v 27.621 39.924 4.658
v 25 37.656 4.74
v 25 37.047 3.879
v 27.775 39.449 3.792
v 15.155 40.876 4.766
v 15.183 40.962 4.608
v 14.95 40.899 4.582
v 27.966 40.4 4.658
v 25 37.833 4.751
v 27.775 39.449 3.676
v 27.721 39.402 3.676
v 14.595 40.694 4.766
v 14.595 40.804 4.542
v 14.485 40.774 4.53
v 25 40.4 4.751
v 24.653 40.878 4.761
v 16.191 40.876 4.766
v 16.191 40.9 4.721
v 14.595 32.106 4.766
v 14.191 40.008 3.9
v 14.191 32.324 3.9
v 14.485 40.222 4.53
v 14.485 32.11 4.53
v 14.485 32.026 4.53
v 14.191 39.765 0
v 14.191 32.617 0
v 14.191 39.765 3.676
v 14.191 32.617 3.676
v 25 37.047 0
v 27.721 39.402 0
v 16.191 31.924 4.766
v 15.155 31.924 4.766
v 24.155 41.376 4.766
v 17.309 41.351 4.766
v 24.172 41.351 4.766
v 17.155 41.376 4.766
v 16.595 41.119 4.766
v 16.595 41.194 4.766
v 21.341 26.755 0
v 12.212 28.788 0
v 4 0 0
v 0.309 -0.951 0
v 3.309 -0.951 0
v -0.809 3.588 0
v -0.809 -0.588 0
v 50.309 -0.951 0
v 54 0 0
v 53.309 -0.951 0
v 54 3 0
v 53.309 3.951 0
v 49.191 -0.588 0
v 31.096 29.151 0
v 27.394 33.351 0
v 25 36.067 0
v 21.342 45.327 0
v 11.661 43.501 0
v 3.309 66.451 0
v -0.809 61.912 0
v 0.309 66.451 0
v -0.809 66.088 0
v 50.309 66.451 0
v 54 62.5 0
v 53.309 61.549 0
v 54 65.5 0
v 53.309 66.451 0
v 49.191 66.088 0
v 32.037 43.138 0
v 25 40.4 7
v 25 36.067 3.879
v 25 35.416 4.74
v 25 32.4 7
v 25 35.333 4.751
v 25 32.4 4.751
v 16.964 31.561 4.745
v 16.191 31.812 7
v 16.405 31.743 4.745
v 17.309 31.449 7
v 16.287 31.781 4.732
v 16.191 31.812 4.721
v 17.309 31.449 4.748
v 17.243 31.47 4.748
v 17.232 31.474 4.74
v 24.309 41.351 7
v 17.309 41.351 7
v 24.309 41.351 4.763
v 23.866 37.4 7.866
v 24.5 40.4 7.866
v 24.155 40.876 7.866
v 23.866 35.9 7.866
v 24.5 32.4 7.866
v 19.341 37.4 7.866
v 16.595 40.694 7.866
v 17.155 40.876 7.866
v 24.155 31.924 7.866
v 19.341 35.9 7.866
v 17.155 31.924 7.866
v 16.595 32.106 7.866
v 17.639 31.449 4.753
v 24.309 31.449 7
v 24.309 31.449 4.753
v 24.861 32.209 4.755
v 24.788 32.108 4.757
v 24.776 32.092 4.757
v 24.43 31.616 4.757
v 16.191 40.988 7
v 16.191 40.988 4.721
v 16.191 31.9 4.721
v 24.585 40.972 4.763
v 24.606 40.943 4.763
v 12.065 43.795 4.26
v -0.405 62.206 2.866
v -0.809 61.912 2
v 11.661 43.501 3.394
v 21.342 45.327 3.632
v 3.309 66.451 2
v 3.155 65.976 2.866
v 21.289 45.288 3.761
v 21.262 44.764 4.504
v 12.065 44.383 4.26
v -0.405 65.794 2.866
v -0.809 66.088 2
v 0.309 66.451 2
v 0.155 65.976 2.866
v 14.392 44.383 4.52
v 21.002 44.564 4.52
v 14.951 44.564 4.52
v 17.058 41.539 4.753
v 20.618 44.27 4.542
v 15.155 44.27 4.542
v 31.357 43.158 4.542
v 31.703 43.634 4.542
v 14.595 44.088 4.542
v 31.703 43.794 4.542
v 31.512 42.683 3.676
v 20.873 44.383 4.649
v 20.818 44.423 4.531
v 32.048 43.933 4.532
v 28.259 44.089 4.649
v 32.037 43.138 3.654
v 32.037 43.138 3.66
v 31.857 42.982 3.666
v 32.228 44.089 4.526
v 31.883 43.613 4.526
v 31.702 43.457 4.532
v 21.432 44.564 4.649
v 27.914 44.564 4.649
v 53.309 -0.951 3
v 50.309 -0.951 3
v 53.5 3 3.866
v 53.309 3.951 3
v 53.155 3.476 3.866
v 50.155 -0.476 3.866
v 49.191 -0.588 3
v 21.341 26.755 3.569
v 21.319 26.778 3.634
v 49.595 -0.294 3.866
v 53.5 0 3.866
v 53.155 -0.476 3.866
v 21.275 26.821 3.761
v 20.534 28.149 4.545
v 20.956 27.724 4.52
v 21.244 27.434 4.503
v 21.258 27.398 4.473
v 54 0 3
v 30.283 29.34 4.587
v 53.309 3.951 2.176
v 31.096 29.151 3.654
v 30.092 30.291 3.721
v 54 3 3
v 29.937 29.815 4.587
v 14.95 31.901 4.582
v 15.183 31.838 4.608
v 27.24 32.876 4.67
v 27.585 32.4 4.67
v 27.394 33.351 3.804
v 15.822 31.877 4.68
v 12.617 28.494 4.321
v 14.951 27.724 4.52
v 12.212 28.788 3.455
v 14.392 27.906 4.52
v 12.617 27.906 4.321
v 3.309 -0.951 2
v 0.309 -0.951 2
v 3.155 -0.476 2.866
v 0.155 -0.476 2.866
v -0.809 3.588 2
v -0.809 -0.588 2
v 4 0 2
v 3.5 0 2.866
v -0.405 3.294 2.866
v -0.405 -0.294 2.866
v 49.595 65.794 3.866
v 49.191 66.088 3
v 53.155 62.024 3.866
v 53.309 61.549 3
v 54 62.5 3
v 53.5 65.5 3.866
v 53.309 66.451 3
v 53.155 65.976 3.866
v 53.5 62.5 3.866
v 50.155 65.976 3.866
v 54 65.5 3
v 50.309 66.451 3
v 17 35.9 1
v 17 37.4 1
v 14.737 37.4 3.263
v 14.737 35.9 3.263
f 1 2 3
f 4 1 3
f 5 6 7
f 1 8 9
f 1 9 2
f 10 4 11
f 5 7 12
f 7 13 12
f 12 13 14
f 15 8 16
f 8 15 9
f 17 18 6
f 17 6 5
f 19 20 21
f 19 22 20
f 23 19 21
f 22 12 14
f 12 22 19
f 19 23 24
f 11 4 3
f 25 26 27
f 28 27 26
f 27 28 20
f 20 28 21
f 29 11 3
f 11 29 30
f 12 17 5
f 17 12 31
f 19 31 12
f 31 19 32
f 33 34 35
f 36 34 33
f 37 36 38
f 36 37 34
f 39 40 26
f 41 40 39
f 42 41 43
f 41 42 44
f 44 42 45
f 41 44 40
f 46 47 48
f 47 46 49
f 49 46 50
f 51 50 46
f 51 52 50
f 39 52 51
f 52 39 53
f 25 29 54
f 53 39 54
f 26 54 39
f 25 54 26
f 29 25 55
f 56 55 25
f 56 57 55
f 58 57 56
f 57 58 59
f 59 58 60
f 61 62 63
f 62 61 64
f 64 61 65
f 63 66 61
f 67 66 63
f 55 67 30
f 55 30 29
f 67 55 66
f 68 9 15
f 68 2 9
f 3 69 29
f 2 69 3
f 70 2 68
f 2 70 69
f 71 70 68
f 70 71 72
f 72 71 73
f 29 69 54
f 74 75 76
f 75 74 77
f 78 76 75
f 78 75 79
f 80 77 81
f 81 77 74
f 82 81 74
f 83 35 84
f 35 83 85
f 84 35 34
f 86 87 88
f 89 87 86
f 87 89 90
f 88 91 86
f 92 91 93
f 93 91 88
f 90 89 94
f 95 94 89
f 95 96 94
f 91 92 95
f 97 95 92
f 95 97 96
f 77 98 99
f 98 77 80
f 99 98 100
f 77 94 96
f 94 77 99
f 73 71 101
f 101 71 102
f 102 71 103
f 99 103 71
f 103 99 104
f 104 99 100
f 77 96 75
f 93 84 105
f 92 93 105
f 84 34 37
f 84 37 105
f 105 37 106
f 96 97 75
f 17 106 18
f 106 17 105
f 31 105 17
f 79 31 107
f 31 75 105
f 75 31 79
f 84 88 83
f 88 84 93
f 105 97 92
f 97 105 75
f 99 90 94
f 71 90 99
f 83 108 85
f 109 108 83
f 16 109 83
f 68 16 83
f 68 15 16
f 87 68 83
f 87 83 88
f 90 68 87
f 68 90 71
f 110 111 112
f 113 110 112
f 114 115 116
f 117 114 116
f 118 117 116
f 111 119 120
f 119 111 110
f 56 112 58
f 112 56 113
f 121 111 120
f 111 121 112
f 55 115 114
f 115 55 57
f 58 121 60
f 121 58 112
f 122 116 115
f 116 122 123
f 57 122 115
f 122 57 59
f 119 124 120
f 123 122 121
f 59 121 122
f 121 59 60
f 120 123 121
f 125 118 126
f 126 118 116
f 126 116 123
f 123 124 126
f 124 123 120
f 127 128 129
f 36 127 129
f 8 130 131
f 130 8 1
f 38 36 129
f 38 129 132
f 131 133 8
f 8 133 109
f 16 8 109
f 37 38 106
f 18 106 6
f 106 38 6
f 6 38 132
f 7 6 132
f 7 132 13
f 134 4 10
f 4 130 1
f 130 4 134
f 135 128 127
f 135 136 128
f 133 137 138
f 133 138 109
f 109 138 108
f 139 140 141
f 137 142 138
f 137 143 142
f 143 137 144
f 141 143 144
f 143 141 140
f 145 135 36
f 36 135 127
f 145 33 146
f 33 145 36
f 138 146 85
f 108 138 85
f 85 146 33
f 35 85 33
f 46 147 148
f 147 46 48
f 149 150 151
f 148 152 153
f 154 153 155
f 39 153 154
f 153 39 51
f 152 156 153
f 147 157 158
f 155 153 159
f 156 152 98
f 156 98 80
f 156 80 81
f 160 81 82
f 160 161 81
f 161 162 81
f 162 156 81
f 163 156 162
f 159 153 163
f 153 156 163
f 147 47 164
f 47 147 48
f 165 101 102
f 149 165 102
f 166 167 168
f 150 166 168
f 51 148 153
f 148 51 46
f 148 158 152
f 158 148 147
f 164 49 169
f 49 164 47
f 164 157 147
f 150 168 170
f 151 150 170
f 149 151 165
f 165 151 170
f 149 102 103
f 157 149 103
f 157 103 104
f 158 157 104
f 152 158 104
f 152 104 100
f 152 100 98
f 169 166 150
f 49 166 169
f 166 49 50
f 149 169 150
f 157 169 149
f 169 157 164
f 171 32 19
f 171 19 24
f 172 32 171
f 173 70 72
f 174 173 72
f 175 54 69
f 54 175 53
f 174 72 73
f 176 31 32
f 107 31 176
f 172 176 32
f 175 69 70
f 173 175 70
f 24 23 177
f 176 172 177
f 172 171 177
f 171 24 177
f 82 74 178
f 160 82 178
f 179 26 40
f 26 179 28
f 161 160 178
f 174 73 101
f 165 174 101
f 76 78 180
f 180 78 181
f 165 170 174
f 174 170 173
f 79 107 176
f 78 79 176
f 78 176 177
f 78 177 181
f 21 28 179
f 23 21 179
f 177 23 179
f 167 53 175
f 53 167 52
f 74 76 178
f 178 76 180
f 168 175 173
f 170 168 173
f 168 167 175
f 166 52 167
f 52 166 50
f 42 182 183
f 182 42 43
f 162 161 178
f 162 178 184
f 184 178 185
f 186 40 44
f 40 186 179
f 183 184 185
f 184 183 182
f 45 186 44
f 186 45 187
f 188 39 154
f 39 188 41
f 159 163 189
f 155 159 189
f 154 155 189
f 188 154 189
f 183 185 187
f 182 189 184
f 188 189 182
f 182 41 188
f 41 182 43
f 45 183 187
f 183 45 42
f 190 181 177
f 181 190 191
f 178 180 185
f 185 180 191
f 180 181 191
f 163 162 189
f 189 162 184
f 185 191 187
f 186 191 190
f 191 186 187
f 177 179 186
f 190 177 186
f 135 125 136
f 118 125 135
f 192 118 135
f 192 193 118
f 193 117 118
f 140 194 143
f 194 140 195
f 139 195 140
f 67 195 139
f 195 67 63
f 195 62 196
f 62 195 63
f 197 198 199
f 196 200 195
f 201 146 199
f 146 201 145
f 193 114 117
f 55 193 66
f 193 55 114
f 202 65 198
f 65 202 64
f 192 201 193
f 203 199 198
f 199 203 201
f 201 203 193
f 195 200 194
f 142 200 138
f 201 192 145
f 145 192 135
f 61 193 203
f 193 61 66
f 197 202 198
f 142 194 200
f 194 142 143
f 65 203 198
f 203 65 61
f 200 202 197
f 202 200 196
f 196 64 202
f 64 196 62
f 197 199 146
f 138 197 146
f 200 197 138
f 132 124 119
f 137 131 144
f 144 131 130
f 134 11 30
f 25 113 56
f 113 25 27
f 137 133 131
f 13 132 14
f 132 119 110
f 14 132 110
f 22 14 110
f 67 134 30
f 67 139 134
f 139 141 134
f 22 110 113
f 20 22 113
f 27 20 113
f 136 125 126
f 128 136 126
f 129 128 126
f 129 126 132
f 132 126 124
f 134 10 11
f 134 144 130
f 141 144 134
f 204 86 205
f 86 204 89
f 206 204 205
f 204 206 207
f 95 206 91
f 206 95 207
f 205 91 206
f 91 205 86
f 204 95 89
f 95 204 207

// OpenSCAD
//Top Bottom, Front, Rear
//Left side

$fs=50;

cornercube=3;
U=62.5;
F=50;
supportH=3.9;
backH=2;

module hinge() {
    translate([17,37.4-1.5,1]) rotate([0,45,0]) 
    translate([-3.2,0,0]) {
    cube([3.2,1.5,20]);
    };    
};

module TF() {
    translate([F,U,0]) {
    cube([cornercube,cornercube,cornercube]);
    };
};

module TR() {
    translate([0,U,0]) {
    cube([cornercube,cornercube,backH]);
    };
};
    
module BF() {
    translate([F,0,0]) {
    cube([cornercube,cornercube,cornercube]);
    };
};
    
module BR() {
    translate([0,0,0]) {
    cube([cornercube,cornercube,backH]);
    };
};
    
module Tglasses(){
    translate([17,37.4,0]) {
    cube([7,3.5,supportH]);
    };
};
    
module Bglasses() {
    translate([17,37.4-1.5-3.5,0]) {
    cube([7,3.5,supportH]);
    };
};

module Fsupport_old() {
    translate([17,37.4-1.5-3.5,0]) {
    cube([7,3.5+1+3.5,3]);
    };
};

module Fsupport() {
    translate([17,37.4-1.5-3.5,0]) {
    cube([7,3.5+1+3.5,7]);
    };
};

module Rsupport(w) {
    translate([17-w,37.4-1.5-3.5,0]) {
    cube([w,3.5+1+3.5,3.9]);
    };
};

module rough() {
    union() {

        Fsupport();

        hull() {
            Rsupport(2);
            //TR();
            //BR();
    };
            hull() {
            TF();
            Tglasses();
        };

        hull() {
            TR();
            Tglasses();
        };

        hull() {
            BF();
            Bglasses();
         };

        hull() {
            BR();
            Bglasses();
        };
    };
};


module hemisphere(d) {
    difference () {
        sphere(d);
        translate([0,0,-d]) {cube([2*d,2*d,2*d], center=true);};
    };
 }

 difference () {
     minkowski() {
        rough();
        hemisphere(1);
    };
    hinge();
};
